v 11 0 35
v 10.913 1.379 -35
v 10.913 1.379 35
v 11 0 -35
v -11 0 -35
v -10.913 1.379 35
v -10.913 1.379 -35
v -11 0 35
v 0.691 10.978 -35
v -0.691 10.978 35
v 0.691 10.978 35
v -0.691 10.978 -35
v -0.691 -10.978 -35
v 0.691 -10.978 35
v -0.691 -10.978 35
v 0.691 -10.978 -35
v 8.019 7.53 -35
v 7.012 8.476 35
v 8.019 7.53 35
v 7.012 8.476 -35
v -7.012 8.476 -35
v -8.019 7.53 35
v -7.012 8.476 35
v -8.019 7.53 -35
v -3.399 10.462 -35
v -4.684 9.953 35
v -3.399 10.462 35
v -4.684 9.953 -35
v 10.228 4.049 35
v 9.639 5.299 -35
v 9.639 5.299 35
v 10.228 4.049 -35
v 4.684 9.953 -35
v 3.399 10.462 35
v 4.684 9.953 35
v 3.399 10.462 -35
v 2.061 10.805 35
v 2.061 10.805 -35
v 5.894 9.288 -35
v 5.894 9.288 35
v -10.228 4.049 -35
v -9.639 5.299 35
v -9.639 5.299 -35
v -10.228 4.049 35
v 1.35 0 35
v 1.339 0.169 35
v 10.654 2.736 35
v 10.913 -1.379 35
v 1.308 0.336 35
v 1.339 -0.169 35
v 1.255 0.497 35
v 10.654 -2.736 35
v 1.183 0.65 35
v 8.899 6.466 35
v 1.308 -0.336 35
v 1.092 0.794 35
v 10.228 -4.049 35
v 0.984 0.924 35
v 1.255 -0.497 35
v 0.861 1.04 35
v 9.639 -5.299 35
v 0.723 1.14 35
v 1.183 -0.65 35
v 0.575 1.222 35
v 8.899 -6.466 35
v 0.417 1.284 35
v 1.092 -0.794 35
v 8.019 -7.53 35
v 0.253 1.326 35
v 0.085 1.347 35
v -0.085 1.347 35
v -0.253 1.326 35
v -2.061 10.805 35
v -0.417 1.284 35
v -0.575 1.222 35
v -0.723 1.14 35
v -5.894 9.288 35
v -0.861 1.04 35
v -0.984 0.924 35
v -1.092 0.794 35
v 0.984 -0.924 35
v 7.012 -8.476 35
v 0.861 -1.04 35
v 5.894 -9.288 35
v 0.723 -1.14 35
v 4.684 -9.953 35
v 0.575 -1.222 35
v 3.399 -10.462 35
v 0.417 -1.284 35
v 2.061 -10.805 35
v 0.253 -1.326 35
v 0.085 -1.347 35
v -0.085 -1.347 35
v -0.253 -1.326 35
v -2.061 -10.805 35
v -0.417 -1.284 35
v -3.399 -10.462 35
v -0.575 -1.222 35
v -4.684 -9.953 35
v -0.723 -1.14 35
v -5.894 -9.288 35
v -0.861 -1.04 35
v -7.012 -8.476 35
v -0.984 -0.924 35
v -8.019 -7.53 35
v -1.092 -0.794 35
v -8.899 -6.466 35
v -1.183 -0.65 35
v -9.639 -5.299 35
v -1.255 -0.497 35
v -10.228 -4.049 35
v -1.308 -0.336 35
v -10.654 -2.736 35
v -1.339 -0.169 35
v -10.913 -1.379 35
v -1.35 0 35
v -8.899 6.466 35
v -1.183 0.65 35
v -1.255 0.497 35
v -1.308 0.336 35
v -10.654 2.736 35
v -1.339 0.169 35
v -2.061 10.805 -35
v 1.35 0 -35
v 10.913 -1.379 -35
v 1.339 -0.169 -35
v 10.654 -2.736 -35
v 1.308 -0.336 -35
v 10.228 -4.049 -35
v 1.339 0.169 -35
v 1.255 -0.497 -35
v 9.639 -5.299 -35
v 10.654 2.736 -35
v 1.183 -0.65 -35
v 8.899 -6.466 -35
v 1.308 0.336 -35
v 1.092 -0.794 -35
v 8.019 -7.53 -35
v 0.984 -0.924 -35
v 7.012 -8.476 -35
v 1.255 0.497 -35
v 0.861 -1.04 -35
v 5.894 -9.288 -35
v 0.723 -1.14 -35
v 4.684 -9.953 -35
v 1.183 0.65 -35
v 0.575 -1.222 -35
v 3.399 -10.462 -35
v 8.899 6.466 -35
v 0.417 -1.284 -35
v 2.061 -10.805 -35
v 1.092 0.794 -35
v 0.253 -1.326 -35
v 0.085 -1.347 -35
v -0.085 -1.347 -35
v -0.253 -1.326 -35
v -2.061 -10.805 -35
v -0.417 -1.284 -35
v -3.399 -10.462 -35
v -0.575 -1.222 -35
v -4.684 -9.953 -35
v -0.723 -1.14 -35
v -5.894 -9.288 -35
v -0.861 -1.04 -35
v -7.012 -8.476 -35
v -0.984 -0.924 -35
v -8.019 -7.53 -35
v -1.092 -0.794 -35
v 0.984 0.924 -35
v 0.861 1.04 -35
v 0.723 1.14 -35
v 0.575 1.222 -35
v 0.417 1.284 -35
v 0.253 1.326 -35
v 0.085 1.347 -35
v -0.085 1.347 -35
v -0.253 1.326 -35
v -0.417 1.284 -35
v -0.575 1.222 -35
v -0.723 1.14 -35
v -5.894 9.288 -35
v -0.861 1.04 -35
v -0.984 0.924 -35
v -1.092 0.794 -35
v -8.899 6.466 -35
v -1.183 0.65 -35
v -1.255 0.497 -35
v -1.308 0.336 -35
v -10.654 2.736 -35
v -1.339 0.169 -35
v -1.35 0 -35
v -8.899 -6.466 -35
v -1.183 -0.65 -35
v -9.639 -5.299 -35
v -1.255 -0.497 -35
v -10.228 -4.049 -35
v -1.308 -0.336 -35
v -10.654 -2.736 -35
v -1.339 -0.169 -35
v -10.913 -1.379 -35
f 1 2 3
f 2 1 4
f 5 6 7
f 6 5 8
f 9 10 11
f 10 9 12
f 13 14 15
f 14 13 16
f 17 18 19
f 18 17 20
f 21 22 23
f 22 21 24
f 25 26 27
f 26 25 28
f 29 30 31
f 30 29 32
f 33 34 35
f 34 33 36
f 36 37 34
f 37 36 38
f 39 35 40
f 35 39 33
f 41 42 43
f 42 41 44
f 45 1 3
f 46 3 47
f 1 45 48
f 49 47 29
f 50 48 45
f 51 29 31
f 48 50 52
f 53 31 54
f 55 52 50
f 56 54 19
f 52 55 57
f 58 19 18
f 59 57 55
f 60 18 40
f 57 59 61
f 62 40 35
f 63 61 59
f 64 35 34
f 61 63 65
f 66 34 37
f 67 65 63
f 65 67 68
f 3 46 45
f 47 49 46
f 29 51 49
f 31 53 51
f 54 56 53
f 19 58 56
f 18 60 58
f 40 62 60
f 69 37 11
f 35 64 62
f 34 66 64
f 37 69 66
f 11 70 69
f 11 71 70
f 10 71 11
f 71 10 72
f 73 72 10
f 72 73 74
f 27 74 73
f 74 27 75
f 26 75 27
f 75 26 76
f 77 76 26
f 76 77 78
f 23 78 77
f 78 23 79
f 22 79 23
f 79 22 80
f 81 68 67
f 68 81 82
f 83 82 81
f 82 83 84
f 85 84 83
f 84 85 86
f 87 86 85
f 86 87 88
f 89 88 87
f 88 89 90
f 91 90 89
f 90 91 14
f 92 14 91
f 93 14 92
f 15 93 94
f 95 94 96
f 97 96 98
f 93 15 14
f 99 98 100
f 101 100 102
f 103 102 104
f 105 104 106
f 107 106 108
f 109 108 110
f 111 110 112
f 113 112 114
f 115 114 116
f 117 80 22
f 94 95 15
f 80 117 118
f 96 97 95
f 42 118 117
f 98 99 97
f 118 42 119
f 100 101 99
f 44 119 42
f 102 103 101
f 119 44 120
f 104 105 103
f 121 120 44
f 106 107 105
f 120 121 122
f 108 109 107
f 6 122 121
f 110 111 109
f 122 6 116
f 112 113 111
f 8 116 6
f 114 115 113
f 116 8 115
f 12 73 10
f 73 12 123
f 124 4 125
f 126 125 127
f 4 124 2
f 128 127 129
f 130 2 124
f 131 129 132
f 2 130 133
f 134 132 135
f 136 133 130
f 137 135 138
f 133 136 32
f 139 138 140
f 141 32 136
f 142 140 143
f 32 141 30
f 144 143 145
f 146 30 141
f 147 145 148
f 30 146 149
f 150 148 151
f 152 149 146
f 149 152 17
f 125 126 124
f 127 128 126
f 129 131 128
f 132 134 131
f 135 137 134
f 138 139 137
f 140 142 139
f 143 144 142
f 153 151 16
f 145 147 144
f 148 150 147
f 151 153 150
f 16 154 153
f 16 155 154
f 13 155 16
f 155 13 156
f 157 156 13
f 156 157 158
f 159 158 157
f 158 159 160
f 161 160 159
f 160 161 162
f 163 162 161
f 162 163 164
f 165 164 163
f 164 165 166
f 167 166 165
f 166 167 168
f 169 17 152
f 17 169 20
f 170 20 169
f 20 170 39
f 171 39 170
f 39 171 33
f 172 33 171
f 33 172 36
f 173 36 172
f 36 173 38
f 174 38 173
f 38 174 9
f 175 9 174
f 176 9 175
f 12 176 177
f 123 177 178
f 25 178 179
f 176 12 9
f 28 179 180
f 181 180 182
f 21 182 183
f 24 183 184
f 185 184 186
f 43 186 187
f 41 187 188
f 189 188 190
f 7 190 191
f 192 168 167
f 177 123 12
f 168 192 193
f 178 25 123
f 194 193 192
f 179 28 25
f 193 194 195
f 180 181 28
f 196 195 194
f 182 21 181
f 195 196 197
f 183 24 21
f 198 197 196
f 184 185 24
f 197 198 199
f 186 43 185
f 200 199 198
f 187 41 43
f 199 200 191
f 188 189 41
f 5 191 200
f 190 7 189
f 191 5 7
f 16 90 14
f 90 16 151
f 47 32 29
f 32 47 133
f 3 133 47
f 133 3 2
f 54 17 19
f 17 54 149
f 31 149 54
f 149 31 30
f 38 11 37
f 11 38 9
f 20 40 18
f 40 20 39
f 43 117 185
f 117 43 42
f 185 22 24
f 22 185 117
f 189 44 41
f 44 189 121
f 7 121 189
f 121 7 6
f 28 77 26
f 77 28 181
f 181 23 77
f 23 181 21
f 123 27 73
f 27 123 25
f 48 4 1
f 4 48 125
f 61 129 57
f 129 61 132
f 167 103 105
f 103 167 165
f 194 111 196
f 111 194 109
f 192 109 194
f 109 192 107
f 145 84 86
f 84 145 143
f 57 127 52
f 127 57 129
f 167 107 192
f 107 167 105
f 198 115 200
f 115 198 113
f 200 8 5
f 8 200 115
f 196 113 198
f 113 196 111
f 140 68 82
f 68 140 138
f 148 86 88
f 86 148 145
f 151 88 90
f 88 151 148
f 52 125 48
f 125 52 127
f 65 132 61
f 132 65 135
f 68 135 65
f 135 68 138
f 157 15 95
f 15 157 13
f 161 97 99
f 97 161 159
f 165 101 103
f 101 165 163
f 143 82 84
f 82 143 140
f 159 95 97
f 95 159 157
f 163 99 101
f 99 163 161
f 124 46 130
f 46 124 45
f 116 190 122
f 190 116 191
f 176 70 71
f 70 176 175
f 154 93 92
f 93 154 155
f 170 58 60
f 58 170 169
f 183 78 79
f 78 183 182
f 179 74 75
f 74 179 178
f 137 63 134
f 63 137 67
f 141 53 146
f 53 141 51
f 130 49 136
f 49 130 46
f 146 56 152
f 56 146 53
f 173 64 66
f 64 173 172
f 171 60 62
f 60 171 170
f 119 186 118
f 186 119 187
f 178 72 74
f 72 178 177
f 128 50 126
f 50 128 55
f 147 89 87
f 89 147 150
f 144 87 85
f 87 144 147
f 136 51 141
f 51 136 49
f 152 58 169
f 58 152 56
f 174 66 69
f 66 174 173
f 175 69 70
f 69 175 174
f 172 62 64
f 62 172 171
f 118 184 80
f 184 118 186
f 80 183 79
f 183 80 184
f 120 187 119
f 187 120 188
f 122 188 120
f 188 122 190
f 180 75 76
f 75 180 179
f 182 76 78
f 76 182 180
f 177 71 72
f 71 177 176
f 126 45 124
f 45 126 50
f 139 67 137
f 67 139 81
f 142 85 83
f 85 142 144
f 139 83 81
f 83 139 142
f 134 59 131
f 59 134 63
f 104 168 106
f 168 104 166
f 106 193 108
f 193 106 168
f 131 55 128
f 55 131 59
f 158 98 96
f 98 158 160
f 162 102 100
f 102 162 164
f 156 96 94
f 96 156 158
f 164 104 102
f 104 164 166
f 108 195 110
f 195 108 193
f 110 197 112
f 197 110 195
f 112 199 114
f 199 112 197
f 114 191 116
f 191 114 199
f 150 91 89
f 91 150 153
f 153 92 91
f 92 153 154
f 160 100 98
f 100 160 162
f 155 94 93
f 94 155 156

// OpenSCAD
$fn = 50;


difference() {
	union() {
		translate(v = [0, 0, -35.0000000000]) {
			cylinder(h = 70, r = 11.0000000000);
		}
	}
	union() {
		translate(v = [0, 0, -100.0000000000]) {
			cylinder(h = 200, r = 1.3500000000);
		}
	}
}
